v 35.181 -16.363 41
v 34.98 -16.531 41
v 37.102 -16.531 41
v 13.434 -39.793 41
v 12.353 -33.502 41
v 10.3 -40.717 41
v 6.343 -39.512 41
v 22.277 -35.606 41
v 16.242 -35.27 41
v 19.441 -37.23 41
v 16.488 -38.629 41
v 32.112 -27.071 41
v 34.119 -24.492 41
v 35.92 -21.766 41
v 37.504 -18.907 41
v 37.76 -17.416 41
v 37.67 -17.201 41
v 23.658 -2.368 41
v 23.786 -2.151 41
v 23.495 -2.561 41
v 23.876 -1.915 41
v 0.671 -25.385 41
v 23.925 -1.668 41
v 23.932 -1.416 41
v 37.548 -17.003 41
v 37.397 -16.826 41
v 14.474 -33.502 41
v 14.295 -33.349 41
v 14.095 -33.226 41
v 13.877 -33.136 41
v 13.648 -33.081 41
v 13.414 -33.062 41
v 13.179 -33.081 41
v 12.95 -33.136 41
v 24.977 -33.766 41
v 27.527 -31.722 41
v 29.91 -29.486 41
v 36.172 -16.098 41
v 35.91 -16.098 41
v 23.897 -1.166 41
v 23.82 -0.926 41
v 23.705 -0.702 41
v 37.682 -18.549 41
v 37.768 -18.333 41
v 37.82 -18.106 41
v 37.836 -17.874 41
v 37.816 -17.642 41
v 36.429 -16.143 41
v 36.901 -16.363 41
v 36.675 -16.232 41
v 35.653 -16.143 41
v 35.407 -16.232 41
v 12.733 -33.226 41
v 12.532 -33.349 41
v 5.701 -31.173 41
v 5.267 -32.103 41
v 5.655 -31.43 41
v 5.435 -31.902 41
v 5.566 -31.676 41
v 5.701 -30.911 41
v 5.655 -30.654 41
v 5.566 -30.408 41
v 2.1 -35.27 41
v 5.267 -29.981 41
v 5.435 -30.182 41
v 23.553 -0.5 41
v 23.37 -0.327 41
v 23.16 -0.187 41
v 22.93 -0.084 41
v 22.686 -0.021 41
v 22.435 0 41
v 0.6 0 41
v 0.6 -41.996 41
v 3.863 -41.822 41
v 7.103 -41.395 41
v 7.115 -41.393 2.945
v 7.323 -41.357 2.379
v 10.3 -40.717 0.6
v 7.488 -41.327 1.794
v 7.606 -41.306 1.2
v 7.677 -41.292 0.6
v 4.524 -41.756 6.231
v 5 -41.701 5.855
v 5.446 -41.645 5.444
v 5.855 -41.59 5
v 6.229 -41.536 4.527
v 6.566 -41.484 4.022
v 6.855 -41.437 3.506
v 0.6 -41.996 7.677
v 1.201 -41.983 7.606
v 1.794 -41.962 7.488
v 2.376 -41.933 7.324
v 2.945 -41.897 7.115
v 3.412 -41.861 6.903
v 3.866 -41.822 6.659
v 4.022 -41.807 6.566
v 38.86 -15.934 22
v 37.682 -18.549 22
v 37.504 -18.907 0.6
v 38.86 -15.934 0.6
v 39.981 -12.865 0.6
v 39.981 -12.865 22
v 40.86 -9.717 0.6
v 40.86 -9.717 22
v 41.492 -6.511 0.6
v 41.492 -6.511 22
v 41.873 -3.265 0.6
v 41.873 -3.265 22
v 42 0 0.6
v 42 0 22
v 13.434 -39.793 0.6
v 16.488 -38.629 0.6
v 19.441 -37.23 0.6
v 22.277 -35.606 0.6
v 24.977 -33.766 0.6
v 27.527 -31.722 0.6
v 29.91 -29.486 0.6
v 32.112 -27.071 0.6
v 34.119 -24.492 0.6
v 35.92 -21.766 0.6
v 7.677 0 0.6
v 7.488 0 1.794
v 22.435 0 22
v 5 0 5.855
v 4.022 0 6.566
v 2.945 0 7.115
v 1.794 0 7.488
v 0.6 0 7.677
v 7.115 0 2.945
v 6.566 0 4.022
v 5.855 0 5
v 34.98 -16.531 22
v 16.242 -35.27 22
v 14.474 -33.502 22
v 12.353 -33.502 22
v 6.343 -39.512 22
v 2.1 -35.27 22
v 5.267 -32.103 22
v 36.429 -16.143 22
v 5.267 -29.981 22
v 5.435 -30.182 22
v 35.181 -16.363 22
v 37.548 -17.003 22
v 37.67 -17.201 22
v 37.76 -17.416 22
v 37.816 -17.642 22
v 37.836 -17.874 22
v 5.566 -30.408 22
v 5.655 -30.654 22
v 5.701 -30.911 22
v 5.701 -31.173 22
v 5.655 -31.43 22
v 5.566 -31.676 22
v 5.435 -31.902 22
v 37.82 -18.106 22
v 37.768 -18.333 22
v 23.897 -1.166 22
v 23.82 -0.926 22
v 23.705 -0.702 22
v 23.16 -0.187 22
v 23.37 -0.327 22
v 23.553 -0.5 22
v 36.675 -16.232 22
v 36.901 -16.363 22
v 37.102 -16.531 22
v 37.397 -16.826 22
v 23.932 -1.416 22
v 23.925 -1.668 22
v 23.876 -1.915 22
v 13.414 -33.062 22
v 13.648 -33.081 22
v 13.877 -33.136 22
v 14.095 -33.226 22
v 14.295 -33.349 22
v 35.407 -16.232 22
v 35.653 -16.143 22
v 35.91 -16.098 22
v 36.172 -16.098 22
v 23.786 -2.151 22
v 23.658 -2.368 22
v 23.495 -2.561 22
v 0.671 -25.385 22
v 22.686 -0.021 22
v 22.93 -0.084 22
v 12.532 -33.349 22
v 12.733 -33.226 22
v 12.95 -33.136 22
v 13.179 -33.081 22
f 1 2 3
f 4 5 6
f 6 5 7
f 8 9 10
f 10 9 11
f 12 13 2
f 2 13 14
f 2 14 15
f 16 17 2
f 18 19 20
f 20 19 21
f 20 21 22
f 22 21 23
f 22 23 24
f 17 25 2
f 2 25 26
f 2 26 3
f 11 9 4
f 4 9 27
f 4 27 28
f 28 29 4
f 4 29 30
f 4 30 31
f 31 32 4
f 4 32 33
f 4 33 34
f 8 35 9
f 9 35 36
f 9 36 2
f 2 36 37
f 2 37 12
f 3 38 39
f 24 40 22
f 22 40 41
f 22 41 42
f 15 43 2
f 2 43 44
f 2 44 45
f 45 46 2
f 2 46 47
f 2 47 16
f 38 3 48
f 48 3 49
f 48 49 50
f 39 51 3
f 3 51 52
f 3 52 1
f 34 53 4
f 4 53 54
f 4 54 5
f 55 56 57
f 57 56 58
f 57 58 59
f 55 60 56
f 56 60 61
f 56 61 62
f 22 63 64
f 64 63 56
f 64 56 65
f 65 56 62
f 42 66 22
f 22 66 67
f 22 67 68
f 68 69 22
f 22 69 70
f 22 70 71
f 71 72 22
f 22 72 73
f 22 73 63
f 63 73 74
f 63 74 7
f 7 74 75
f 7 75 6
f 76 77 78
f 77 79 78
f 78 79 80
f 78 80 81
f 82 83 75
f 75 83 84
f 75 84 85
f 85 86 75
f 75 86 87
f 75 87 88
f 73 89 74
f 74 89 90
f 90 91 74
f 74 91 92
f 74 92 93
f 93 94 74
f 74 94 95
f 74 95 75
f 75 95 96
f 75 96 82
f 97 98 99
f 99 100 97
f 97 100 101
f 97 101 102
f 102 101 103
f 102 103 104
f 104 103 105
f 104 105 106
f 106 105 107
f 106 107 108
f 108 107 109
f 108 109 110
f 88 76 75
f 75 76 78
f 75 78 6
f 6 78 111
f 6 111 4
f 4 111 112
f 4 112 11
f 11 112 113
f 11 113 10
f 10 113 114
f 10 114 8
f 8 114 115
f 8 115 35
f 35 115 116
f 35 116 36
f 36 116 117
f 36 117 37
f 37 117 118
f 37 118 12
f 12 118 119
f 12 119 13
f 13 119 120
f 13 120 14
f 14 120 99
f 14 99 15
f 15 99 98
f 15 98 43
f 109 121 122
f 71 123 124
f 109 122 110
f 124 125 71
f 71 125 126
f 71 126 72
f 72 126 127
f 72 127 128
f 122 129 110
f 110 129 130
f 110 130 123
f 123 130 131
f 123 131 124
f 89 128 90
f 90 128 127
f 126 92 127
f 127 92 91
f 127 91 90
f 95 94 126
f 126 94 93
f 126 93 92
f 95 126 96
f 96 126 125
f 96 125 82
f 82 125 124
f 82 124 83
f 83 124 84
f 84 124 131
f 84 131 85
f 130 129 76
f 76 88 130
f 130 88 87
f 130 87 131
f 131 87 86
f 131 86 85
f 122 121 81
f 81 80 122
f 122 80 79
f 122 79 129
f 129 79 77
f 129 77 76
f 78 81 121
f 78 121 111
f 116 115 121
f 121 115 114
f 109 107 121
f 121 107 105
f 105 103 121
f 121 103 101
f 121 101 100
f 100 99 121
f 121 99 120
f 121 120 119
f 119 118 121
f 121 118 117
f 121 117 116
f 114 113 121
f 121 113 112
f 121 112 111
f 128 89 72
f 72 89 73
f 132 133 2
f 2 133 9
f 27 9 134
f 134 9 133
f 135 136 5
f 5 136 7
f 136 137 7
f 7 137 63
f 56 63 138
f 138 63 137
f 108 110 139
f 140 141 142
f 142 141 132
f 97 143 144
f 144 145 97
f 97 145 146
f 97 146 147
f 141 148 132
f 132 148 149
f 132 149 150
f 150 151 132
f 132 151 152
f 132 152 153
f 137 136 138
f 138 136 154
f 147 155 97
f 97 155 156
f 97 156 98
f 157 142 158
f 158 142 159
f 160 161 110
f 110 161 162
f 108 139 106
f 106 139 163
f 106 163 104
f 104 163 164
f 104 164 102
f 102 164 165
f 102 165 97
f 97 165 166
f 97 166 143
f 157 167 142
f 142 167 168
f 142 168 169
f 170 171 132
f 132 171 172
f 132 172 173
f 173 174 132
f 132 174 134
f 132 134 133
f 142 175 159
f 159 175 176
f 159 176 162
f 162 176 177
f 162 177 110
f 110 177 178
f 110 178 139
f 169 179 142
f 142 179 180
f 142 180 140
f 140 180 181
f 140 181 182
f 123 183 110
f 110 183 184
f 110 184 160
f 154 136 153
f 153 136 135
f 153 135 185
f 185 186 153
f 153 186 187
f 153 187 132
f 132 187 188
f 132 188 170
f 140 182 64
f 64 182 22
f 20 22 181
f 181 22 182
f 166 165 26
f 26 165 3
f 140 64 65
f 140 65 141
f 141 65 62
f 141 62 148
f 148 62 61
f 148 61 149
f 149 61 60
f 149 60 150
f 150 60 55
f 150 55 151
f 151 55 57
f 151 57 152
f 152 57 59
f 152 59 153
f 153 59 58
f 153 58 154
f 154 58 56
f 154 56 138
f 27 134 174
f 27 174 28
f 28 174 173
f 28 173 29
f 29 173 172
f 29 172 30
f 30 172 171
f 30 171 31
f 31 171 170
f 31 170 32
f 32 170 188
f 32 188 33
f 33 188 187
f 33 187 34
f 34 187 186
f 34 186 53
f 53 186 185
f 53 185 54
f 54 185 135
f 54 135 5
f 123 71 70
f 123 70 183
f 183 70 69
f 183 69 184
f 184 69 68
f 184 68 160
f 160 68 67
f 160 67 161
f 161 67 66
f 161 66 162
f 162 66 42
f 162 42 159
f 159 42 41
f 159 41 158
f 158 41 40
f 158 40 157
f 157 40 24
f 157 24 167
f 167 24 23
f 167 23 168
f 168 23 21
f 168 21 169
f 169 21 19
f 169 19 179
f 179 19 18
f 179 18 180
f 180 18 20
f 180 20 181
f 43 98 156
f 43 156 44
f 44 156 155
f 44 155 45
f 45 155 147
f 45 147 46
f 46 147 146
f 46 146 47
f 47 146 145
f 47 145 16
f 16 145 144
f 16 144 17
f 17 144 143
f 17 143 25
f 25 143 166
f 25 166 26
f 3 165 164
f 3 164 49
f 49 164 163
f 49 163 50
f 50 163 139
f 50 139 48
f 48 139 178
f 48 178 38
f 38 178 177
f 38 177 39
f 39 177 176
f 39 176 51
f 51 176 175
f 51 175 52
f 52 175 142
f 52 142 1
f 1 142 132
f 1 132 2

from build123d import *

# Parameters (mm, degrees)
SKETCH1_R           = 42
BOSS_EXTRUDE1_DEPTH = 41
CUT_EXTRUDE1_DEPTH  = 73.173402303
SKETCH3_R           = 7.7
CUT_EXTRUDE2_DEPTH  = 73.173402303
SKETCH4_W           = 0.6
SKETCH4_H           = 34.211954595
SKETCH4_W_2         = 35.741543893
SKETCH4_H_2         = 0.6
CUT_EXTRUDE3_DEPTH  = 73.173402476
CUT_EXTRUDE4_DEPTH  = 19
CUT_EXTRUDE6_START  = -19
CUT_EXTRUDE6_DEPTH  = 19
FILLET1_R           = 1.5


with BuildPart() as part:
    # Sketch1 → Boss-Extrude1 (new body)
    with BuildSketch(Plane.XY):
        Circle(SKETCH1_R)
    extrude(amount=BOSS_EXTRUDE1_DEPTH)

    # Sketch2 → Cut-Extrude1 (cut, through all)
    with BuildSketch(Plane.XY.offset(41)):
        with BuildLine():
            Line((0, 0), (42, 0))
            ThreePointArc((42, 0), (-29.69848481, 29.69848481), (0, -42))
            Line((0, -42), (0, 0))
        make_face()
    extrude(amount=-CUT_EXTRUDE1_DEPTH, mode=Mode.SUBTRACT)

    # Sketch3 → Cut-Extrude2 (cut, through all)
    with BuildSketch(Plane(origin=(0, 0, 0), x_dir=(1, 0, 0), z_dir=(0, 1, 0))):
        Circle(SKETCH3_R)
    extrude(amount=-CUT_EXTRUDE2_DEPTH, mode=Mode.SUBTRACT)

    # Sketch4 → Cut-Extrude3 (cut, through all)
    with BuildSketch(Plane(origin=(0, 0, 0), x_dir=(1, 0, 0), z_dir=(0, 1, 0))):
        with Locations((0.3, -23.894022702)):
            Rectangle(SKETCH4_W, SKETCH4_H)
        with Locations((24.129228054, -0.3)):
            Rectangle(SKETCH4_W_2, SKETCH4_H_2)
    extrude(amount=-CUT_EXTRUDE3_DEPTH, mode=Mode.SUBTRACT)

    # Sketch5 → Cut-Extrude4 (cut)
    with BuildSketch(Plane.XY.offset(41)):
        Polygon((36.041125497, -15.470562748), (33.212698372, -12.642135624), (13.413708499, -32.441125497), (16.242135624, -35.269552622), align=None)
        Polygon((33.919805153, -3.449747468), (31.712698372, -5.656854249), (6.256854249, -31.112698372), (2.1, -35.269552622), (6.342640687, -39.512193309), (13.413708499, -32.441125497), (33.212698372, -12.642135624), (38.162445841, -7.692388155), align=None)
    extrude(amount=-CUT_EXTRUDE4_DEPTH, mode=Mode.SUBTRACT)

    # Sketch6 → Cut-Extrude6 (cut)
    with BuildSketch(Plane.XY.offset(41).offset(CUT_EXTRUDE6_START)):
        with BuildLine():
            Line((28.970057685, -8.399494937), (6.327564928, -31.041987694))
            Line((6.327564928, -31.041987694), (0.670710678, -25.385133445))
            Line((0.670710678, -25.385133445), (26.055844123, 0))
            Line((26.055844123, 0), (42, 0))
            ThreePointArc((42, 0), (41.025156816, -8.996471987), (38.145880561, -17.575317813))
            Line((38.145880561, -17.575317813), (33.212698372, -12.642135624))
            Line((33.212698372, -12.642135624), (28.970057685, -8.399494937))
        make_face()
    extrude(amount=CUT_EXTRUDE6_DEPTH, mode=Mode.SUBTRACT)

    # Fillet1
    fillet1_edges = [part.edges().sort_by_distance(p)[0] for p in [
        (6.327564928, -31.041987694, 31.5),
        (26.055844123, 0, 31.5),
        (38.145880561, -17.575317813, 31.5),
        (36.041125497, -15.470562748, 31.5),
        (13.413708499, -32.441125497, 31.5),
    ]]
    fillet(fillet1_edges, radius=FILLET1_R)


solid = part.part
